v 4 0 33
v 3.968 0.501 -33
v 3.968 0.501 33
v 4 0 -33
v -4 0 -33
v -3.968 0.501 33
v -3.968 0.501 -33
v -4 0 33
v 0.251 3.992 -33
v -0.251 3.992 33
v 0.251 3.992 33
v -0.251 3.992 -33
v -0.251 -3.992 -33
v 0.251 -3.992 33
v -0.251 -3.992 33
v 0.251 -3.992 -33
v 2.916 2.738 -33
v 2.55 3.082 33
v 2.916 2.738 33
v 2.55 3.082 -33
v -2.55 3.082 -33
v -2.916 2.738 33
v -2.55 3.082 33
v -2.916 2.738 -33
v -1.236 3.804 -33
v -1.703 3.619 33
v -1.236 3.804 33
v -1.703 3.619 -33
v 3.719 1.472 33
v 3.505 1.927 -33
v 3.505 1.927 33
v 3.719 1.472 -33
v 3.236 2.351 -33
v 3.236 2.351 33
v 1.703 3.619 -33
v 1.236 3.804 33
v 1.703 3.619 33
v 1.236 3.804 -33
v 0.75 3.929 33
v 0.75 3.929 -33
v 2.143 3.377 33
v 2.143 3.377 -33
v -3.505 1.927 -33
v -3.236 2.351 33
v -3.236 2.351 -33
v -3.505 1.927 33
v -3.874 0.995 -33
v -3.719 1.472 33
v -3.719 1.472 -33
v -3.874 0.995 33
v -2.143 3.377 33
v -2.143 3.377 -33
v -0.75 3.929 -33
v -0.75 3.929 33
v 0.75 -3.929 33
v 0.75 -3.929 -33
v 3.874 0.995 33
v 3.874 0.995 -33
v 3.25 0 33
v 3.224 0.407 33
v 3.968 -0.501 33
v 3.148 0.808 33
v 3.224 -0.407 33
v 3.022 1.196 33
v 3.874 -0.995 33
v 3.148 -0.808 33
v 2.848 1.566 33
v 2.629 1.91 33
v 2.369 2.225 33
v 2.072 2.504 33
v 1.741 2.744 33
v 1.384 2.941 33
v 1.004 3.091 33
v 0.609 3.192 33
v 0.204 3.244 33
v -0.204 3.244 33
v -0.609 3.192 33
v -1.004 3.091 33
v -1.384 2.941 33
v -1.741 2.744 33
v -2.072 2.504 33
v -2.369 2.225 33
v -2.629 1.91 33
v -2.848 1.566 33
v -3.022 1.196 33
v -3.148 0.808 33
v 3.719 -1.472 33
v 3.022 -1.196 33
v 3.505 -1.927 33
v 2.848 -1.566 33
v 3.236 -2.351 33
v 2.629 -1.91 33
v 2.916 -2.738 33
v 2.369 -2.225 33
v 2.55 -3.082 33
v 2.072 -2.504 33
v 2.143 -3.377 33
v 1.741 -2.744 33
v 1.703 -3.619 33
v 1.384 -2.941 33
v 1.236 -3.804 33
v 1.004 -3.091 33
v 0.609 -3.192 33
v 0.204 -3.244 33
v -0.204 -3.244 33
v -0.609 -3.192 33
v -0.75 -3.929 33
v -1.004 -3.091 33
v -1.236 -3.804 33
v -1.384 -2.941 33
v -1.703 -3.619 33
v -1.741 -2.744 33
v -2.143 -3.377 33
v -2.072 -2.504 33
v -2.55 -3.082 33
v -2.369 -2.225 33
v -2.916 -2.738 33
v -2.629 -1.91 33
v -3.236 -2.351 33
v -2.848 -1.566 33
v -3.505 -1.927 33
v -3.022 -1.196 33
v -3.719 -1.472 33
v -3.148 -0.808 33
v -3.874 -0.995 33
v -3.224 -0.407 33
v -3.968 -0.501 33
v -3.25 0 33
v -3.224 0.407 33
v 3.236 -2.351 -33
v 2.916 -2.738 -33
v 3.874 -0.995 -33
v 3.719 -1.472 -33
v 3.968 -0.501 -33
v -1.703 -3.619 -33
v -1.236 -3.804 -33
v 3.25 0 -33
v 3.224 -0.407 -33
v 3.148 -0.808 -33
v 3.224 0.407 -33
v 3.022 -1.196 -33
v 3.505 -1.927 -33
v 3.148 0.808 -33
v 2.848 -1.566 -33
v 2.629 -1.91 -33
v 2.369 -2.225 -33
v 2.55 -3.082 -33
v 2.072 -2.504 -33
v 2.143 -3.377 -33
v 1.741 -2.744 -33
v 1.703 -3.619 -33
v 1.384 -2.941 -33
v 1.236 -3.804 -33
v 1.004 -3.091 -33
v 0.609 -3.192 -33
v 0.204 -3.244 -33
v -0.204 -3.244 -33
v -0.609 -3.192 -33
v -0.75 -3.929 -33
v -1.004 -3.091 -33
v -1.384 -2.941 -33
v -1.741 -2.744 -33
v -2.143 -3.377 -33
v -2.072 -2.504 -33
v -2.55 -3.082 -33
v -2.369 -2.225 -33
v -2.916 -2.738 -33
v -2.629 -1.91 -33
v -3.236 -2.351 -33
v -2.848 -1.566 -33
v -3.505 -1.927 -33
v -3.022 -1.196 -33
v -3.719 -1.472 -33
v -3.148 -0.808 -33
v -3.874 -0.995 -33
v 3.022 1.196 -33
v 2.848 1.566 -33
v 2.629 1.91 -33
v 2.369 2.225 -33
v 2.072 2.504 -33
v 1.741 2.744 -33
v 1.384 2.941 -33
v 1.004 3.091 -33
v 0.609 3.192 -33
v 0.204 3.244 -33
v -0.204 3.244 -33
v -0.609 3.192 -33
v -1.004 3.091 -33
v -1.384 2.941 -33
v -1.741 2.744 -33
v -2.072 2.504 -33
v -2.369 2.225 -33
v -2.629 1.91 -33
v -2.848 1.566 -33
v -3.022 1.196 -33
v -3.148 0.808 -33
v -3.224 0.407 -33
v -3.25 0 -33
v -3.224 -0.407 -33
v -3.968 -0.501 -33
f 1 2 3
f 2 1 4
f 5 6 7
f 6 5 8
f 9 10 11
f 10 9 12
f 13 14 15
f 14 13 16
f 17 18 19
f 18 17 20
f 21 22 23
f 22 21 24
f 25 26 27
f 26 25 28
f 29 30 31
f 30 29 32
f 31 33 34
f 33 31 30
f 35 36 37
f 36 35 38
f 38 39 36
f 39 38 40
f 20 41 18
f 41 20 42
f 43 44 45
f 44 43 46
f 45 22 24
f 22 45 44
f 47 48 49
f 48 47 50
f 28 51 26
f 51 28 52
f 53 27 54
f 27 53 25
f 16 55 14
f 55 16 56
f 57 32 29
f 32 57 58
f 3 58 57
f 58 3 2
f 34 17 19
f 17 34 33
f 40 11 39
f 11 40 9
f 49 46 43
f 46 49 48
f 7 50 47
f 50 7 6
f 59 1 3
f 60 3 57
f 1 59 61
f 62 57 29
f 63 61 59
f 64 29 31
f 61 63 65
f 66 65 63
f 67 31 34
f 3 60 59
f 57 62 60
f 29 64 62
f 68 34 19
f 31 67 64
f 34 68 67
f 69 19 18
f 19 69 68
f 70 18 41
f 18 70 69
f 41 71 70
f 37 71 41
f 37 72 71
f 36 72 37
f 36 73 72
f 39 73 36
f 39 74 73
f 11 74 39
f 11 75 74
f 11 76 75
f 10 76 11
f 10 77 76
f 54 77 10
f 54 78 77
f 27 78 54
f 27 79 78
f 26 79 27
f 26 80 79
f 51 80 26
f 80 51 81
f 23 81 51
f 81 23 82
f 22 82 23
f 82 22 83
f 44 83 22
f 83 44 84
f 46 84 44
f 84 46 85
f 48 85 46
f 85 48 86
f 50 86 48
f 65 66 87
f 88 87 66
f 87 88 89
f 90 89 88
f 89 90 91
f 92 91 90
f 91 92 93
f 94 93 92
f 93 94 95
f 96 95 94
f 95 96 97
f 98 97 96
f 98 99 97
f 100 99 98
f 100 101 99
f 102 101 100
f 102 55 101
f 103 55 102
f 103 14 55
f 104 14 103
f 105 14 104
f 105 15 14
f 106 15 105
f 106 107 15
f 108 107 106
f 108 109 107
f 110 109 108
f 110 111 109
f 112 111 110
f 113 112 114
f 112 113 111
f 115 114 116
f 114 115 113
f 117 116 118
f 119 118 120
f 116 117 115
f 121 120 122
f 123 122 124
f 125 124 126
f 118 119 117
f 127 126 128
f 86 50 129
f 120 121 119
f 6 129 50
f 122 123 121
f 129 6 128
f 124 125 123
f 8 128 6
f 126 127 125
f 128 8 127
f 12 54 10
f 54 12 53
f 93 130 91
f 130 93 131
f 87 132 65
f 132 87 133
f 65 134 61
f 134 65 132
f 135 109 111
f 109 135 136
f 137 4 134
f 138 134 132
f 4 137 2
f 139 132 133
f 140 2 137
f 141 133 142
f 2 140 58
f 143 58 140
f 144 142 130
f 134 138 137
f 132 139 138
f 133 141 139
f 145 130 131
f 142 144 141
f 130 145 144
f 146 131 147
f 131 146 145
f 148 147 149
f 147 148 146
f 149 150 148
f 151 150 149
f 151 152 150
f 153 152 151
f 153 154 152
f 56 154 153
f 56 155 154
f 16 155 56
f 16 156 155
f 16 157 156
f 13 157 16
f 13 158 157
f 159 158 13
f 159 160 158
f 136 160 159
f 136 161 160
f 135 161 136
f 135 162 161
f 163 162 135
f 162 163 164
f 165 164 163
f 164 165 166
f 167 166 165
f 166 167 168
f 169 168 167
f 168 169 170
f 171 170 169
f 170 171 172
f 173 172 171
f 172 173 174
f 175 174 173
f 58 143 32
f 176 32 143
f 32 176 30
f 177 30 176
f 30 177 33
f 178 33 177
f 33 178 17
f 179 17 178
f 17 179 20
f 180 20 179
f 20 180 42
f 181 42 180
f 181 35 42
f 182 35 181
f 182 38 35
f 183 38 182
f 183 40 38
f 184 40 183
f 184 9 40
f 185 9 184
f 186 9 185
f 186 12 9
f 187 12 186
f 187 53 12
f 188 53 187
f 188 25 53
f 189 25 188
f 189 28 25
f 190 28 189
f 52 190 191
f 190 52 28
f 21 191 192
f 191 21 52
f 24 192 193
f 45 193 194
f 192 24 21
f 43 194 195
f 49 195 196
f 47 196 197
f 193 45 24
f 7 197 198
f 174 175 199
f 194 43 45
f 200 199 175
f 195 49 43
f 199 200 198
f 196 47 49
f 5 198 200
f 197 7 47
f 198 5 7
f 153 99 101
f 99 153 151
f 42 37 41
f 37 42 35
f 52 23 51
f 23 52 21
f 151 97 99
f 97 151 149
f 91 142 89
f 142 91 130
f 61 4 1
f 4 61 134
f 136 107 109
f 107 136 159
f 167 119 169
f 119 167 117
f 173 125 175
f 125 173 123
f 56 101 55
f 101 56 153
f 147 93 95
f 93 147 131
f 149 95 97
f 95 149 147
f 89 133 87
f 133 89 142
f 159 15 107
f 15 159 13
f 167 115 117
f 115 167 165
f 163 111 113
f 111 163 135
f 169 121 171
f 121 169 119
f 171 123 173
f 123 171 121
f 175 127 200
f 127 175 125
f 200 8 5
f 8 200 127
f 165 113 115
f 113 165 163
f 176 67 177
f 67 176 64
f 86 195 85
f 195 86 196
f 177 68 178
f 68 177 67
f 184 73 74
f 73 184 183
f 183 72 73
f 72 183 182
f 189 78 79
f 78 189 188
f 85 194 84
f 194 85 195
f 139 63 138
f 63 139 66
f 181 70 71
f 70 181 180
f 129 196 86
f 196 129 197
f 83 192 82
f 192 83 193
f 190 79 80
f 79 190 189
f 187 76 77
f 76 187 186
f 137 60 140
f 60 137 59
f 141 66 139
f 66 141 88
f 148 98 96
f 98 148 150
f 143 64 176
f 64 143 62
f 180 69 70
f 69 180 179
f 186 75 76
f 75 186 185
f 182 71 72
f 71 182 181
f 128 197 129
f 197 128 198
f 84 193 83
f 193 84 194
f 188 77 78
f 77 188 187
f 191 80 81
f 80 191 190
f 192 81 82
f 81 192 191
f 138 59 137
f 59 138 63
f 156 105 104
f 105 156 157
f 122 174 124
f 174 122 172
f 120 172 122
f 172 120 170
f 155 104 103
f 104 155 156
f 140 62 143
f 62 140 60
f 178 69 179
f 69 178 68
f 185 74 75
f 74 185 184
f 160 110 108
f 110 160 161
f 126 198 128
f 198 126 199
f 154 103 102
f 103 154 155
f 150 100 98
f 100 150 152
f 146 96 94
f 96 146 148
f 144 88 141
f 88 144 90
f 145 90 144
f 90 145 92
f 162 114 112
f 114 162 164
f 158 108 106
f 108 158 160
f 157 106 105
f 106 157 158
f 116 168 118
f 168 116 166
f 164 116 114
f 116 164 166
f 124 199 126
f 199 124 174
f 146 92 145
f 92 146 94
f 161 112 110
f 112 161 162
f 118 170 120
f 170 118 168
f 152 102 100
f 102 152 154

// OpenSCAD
$fn = 50;


difference() {
	union() {
		translate(v = [0, 0, -33.0000000000]) {
			cylinder(h = 66, r = 4.0000000000);
		}
	}
	union() {
		translate(v = [0, 0, -100.0000000000]) {
			cylinder(h = 200, r = 3.2500000000);
		}
	}
}
